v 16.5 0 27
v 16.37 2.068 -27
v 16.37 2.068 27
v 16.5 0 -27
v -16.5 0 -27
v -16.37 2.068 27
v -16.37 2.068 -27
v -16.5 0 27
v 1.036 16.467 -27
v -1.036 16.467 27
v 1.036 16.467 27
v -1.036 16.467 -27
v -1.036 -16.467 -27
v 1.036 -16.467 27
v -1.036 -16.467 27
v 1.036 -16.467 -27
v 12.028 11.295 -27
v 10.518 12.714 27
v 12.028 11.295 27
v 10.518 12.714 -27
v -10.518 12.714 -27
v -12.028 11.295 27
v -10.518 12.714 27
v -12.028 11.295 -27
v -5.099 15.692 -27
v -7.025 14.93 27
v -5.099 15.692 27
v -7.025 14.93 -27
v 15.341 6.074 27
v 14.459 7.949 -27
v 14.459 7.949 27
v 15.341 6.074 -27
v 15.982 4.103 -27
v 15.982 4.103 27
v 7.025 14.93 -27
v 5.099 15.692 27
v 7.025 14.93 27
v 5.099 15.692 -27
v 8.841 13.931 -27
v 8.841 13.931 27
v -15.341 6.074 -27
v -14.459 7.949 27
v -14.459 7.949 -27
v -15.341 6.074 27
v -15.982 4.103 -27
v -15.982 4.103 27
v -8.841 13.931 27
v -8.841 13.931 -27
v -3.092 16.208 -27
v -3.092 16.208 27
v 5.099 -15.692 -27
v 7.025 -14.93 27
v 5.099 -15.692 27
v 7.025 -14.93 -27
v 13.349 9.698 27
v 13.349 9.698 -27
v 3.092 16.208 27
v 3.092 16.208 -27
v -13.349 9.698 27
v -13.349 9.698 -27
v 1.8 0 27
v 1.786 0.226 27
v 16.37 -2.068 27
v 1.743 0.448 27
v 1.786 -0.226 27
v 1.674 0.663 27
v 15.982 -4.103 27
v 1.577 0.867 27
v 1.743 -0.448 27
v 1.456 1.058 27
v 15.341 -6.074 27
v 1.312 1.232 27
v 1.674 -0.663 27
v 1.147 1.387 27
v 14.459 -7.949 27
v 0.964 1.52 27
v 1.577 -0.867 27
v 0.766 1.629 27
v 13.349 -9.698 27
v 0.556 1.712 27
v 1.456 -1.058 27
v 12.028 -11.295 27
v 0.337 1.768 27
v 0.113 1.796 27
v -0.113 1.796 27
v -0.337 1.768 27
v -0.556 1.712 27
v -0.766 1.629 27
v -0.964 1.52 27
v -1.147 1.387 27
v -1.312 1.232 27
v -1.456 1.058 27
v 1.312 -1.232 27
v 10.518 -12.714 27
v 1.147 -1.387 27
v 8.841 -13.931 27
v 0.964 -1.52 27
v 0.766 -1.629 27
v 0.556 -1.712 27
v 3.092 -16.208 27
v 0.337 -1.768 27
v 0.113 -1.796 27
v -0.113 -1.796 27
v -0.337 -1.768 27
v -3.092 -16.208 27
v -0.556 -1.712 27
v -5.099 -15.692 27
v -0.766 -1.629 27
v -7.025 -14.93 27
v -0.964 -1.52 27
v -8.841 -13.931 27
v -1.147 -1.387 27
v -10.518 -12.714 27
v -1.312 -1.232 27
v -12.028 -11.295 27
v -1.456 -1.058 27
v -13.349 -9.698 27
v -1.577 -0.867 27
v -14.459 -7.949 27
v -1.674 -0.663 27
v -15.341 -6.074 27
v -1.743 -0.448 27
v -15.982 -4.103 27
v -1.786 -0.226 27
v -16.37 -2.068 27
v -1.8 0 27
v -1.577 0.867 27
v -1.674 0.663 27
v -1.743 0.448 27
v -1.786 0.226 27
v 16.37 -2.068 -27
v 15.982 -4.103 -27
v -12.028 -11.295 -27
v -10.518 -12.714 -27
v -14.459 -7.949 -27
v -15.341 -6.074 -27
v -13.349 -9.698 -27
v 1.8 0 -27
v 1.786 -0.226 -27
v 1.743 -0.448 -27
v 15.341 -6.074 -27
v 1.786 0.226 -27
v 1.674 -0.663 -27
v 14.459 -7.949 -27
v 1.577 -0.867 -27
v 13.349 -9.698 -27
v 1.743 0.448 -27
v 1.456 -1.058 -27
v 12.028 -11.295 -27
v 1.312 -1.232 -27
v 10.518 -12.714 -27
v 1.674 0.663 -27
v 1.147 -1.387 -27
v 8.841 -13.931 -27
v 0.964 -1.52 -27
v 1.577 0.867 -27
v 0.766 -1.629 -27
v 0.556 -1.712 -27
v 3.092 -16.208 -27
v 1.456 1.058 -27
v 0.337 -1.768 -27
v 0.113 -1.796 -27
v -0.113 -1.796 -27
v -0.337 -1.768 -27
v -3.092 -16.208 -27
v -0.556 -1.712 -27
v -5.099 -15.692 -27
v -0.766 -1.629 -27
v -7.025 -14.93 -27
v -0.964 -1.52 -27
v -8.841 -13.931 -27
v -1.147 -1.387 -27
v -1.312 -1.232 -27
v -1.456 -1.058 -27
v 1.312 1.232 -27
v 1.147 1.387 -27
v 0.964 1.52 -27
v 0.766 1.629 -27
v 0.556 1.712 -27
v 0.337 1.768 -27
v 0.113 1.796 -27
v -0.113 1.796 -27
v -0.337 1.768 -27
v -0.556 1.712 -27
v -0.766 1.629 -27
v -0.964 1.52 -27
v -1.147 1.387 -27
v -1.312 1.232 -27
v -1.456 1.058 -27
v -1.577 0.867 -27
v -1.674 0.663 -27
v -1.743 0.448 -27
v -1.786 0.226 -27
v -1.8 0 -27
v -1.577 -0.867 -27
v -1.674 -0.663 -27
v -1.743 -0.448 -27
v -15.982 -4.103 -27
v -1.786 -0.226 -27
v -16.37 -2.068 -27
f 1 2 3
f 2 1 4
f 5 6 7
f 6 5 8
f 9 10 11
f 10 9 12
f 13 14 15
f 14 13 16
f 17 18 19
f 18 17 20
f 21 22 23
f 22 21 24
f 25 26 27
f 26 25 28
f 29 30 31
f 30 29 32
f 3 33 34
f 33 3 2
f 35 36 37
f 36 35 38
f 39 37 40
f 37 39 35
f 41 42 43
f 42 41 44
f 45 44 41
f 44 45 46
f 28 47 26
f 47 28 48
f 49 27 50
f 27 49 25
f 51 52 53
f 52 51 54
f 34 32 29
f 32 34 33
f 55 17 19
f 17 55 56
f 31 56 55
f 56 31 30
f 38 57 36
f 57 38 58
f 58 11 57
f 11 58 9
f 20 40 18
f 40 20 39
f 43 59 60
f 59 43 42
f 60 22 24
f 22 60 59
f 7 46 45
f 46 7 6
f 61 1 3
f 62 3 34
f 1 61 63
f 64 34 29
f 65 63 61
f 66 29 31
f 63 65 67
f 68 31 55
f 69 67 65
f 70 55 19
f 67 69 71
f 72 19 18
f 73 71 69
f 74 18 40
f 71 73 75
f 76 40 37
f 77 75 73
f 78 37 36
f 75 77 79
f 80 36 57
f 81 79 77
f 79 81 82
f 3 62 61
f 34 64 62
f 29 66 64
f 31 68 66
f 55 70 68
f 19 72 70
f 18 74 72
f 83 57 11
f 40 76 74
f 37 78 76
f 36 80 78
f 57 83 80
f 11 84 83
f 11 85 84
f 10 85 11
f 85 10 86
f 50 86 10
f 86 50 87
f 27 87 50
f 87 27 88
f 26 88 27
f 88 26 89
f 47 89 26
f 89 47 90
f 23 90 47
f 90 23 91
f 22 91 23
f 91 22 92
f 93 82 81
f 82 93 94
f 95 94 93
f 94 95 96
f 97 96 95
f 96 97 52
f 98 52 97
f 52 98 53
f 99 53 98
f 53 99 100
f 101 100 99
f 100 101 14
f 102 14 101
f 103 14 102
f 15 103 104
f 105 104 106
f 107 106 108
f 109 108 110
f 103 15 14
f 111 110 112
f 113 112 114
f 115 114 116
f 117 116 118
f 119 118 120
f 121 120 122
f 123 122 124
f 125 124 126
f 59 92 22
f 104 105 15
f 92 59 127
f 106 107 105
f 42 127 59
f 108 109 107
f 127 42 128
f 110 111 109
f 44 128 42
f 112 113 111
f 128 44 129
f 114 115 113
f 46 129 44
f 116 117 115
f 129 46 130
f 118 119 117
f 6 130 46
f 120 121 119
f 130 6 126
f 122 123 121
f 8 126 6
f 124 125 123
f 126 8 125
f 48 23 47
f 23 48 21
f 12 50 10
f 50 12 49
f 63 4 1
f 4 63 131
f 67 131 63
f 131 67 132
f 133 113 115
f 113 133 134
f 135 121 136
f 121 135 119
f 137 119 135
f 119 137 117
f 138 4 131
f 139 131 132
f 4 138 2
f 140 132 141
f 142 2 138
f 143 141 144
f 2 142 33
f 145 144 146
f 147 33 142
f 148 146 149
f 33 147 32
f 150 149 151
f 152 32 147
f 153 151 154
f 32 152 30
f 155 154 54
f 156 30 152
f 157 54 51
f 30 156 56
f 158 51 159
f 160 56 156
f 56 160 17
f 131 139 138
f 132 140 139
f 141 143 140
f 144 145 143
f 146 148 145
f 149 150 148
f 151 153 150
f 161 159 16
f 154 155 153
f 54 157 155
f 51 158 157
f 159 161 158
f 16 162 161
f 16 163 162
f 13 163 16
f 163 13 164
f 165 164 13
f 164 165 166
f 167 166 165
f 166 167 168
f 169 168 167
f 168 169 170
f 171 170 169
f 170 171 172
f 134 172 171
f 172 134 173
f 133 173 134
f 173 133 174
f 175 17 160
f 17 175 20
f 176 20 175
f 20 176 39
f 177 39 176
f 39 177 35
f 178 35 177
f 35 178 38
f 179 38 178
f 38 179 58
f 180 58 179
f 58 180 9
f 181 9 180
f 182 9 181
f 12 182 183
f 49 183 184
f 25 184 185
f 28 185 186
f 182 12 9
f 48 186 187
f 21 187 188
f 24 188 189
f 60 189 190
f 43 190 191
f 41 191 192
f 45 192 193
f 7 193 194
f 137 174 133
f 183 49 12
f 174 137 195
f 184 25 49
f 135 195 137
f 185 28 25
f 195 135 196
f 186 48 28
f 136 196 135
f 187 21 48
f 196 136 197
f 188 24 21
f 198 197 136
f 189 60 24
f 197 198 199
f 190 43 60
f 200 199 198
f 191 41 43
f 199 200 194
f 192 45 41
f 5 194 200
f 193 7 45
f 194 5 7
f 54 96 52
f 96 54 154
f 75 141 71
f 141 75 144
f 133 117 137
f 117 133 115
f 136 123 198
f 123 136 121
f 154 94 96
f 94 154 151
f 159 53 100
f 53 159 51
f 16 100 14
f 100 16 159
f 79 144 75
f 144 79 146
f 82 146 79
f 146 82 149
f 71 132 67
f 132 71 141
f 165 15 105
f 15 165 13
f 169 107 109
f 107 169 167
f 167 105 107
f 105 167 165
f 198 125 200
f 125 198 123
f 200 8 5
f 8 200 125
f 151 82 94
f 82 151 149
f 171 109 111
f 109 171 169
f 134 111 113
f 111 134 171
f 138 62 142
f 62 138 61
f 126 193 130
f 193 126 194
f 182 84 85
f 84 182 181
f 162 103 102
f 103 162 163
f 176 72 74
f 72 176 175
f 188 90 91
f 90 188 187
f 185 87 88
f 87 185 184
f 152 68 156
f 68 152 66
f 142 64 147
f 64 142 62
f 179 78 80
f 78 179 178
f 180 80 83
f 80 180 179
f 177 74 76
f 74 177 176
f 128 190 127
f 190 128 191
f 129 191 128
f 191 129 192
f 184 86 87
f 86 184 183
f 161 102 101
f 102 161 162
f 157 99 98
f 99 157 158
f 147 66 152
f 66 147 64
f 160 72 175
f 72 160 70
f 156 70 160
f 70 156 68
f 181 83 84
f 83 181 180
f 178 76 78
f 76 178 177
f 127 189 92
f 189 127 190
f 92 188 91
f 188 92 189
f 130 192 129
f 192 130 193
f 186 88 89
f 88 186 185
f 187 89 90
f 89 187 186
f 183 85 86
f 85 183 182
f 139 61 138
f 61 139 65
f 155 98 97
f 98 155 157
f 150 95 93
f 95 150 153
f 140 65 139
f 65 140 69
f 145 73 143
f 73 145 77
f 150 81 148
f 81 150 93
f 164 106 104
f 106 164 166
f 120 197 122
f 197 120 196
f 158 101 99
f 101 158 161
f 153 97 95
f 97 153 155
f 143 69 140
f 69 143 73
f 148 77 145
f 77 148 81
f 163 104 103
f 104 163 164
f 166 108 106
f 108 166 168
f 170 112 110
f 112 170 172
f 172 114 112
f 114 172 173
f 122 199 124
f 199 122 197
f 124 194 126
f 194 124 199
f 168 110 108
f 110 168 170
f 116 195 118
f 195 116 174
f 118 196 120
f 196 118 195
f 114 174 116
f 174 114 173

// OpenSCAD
$fn = 50;


difference() {
	union() {
		translate(v = [0, 0, -27.0000000000]) {
			cylinder(h = 54, r = 16.5000000000);
		}
	}
	union() {
		translate(v = [0, 0, -100.0000000000]) {
			cylinder(h = 200, r = 1.8000000000);
		}
	}
}
